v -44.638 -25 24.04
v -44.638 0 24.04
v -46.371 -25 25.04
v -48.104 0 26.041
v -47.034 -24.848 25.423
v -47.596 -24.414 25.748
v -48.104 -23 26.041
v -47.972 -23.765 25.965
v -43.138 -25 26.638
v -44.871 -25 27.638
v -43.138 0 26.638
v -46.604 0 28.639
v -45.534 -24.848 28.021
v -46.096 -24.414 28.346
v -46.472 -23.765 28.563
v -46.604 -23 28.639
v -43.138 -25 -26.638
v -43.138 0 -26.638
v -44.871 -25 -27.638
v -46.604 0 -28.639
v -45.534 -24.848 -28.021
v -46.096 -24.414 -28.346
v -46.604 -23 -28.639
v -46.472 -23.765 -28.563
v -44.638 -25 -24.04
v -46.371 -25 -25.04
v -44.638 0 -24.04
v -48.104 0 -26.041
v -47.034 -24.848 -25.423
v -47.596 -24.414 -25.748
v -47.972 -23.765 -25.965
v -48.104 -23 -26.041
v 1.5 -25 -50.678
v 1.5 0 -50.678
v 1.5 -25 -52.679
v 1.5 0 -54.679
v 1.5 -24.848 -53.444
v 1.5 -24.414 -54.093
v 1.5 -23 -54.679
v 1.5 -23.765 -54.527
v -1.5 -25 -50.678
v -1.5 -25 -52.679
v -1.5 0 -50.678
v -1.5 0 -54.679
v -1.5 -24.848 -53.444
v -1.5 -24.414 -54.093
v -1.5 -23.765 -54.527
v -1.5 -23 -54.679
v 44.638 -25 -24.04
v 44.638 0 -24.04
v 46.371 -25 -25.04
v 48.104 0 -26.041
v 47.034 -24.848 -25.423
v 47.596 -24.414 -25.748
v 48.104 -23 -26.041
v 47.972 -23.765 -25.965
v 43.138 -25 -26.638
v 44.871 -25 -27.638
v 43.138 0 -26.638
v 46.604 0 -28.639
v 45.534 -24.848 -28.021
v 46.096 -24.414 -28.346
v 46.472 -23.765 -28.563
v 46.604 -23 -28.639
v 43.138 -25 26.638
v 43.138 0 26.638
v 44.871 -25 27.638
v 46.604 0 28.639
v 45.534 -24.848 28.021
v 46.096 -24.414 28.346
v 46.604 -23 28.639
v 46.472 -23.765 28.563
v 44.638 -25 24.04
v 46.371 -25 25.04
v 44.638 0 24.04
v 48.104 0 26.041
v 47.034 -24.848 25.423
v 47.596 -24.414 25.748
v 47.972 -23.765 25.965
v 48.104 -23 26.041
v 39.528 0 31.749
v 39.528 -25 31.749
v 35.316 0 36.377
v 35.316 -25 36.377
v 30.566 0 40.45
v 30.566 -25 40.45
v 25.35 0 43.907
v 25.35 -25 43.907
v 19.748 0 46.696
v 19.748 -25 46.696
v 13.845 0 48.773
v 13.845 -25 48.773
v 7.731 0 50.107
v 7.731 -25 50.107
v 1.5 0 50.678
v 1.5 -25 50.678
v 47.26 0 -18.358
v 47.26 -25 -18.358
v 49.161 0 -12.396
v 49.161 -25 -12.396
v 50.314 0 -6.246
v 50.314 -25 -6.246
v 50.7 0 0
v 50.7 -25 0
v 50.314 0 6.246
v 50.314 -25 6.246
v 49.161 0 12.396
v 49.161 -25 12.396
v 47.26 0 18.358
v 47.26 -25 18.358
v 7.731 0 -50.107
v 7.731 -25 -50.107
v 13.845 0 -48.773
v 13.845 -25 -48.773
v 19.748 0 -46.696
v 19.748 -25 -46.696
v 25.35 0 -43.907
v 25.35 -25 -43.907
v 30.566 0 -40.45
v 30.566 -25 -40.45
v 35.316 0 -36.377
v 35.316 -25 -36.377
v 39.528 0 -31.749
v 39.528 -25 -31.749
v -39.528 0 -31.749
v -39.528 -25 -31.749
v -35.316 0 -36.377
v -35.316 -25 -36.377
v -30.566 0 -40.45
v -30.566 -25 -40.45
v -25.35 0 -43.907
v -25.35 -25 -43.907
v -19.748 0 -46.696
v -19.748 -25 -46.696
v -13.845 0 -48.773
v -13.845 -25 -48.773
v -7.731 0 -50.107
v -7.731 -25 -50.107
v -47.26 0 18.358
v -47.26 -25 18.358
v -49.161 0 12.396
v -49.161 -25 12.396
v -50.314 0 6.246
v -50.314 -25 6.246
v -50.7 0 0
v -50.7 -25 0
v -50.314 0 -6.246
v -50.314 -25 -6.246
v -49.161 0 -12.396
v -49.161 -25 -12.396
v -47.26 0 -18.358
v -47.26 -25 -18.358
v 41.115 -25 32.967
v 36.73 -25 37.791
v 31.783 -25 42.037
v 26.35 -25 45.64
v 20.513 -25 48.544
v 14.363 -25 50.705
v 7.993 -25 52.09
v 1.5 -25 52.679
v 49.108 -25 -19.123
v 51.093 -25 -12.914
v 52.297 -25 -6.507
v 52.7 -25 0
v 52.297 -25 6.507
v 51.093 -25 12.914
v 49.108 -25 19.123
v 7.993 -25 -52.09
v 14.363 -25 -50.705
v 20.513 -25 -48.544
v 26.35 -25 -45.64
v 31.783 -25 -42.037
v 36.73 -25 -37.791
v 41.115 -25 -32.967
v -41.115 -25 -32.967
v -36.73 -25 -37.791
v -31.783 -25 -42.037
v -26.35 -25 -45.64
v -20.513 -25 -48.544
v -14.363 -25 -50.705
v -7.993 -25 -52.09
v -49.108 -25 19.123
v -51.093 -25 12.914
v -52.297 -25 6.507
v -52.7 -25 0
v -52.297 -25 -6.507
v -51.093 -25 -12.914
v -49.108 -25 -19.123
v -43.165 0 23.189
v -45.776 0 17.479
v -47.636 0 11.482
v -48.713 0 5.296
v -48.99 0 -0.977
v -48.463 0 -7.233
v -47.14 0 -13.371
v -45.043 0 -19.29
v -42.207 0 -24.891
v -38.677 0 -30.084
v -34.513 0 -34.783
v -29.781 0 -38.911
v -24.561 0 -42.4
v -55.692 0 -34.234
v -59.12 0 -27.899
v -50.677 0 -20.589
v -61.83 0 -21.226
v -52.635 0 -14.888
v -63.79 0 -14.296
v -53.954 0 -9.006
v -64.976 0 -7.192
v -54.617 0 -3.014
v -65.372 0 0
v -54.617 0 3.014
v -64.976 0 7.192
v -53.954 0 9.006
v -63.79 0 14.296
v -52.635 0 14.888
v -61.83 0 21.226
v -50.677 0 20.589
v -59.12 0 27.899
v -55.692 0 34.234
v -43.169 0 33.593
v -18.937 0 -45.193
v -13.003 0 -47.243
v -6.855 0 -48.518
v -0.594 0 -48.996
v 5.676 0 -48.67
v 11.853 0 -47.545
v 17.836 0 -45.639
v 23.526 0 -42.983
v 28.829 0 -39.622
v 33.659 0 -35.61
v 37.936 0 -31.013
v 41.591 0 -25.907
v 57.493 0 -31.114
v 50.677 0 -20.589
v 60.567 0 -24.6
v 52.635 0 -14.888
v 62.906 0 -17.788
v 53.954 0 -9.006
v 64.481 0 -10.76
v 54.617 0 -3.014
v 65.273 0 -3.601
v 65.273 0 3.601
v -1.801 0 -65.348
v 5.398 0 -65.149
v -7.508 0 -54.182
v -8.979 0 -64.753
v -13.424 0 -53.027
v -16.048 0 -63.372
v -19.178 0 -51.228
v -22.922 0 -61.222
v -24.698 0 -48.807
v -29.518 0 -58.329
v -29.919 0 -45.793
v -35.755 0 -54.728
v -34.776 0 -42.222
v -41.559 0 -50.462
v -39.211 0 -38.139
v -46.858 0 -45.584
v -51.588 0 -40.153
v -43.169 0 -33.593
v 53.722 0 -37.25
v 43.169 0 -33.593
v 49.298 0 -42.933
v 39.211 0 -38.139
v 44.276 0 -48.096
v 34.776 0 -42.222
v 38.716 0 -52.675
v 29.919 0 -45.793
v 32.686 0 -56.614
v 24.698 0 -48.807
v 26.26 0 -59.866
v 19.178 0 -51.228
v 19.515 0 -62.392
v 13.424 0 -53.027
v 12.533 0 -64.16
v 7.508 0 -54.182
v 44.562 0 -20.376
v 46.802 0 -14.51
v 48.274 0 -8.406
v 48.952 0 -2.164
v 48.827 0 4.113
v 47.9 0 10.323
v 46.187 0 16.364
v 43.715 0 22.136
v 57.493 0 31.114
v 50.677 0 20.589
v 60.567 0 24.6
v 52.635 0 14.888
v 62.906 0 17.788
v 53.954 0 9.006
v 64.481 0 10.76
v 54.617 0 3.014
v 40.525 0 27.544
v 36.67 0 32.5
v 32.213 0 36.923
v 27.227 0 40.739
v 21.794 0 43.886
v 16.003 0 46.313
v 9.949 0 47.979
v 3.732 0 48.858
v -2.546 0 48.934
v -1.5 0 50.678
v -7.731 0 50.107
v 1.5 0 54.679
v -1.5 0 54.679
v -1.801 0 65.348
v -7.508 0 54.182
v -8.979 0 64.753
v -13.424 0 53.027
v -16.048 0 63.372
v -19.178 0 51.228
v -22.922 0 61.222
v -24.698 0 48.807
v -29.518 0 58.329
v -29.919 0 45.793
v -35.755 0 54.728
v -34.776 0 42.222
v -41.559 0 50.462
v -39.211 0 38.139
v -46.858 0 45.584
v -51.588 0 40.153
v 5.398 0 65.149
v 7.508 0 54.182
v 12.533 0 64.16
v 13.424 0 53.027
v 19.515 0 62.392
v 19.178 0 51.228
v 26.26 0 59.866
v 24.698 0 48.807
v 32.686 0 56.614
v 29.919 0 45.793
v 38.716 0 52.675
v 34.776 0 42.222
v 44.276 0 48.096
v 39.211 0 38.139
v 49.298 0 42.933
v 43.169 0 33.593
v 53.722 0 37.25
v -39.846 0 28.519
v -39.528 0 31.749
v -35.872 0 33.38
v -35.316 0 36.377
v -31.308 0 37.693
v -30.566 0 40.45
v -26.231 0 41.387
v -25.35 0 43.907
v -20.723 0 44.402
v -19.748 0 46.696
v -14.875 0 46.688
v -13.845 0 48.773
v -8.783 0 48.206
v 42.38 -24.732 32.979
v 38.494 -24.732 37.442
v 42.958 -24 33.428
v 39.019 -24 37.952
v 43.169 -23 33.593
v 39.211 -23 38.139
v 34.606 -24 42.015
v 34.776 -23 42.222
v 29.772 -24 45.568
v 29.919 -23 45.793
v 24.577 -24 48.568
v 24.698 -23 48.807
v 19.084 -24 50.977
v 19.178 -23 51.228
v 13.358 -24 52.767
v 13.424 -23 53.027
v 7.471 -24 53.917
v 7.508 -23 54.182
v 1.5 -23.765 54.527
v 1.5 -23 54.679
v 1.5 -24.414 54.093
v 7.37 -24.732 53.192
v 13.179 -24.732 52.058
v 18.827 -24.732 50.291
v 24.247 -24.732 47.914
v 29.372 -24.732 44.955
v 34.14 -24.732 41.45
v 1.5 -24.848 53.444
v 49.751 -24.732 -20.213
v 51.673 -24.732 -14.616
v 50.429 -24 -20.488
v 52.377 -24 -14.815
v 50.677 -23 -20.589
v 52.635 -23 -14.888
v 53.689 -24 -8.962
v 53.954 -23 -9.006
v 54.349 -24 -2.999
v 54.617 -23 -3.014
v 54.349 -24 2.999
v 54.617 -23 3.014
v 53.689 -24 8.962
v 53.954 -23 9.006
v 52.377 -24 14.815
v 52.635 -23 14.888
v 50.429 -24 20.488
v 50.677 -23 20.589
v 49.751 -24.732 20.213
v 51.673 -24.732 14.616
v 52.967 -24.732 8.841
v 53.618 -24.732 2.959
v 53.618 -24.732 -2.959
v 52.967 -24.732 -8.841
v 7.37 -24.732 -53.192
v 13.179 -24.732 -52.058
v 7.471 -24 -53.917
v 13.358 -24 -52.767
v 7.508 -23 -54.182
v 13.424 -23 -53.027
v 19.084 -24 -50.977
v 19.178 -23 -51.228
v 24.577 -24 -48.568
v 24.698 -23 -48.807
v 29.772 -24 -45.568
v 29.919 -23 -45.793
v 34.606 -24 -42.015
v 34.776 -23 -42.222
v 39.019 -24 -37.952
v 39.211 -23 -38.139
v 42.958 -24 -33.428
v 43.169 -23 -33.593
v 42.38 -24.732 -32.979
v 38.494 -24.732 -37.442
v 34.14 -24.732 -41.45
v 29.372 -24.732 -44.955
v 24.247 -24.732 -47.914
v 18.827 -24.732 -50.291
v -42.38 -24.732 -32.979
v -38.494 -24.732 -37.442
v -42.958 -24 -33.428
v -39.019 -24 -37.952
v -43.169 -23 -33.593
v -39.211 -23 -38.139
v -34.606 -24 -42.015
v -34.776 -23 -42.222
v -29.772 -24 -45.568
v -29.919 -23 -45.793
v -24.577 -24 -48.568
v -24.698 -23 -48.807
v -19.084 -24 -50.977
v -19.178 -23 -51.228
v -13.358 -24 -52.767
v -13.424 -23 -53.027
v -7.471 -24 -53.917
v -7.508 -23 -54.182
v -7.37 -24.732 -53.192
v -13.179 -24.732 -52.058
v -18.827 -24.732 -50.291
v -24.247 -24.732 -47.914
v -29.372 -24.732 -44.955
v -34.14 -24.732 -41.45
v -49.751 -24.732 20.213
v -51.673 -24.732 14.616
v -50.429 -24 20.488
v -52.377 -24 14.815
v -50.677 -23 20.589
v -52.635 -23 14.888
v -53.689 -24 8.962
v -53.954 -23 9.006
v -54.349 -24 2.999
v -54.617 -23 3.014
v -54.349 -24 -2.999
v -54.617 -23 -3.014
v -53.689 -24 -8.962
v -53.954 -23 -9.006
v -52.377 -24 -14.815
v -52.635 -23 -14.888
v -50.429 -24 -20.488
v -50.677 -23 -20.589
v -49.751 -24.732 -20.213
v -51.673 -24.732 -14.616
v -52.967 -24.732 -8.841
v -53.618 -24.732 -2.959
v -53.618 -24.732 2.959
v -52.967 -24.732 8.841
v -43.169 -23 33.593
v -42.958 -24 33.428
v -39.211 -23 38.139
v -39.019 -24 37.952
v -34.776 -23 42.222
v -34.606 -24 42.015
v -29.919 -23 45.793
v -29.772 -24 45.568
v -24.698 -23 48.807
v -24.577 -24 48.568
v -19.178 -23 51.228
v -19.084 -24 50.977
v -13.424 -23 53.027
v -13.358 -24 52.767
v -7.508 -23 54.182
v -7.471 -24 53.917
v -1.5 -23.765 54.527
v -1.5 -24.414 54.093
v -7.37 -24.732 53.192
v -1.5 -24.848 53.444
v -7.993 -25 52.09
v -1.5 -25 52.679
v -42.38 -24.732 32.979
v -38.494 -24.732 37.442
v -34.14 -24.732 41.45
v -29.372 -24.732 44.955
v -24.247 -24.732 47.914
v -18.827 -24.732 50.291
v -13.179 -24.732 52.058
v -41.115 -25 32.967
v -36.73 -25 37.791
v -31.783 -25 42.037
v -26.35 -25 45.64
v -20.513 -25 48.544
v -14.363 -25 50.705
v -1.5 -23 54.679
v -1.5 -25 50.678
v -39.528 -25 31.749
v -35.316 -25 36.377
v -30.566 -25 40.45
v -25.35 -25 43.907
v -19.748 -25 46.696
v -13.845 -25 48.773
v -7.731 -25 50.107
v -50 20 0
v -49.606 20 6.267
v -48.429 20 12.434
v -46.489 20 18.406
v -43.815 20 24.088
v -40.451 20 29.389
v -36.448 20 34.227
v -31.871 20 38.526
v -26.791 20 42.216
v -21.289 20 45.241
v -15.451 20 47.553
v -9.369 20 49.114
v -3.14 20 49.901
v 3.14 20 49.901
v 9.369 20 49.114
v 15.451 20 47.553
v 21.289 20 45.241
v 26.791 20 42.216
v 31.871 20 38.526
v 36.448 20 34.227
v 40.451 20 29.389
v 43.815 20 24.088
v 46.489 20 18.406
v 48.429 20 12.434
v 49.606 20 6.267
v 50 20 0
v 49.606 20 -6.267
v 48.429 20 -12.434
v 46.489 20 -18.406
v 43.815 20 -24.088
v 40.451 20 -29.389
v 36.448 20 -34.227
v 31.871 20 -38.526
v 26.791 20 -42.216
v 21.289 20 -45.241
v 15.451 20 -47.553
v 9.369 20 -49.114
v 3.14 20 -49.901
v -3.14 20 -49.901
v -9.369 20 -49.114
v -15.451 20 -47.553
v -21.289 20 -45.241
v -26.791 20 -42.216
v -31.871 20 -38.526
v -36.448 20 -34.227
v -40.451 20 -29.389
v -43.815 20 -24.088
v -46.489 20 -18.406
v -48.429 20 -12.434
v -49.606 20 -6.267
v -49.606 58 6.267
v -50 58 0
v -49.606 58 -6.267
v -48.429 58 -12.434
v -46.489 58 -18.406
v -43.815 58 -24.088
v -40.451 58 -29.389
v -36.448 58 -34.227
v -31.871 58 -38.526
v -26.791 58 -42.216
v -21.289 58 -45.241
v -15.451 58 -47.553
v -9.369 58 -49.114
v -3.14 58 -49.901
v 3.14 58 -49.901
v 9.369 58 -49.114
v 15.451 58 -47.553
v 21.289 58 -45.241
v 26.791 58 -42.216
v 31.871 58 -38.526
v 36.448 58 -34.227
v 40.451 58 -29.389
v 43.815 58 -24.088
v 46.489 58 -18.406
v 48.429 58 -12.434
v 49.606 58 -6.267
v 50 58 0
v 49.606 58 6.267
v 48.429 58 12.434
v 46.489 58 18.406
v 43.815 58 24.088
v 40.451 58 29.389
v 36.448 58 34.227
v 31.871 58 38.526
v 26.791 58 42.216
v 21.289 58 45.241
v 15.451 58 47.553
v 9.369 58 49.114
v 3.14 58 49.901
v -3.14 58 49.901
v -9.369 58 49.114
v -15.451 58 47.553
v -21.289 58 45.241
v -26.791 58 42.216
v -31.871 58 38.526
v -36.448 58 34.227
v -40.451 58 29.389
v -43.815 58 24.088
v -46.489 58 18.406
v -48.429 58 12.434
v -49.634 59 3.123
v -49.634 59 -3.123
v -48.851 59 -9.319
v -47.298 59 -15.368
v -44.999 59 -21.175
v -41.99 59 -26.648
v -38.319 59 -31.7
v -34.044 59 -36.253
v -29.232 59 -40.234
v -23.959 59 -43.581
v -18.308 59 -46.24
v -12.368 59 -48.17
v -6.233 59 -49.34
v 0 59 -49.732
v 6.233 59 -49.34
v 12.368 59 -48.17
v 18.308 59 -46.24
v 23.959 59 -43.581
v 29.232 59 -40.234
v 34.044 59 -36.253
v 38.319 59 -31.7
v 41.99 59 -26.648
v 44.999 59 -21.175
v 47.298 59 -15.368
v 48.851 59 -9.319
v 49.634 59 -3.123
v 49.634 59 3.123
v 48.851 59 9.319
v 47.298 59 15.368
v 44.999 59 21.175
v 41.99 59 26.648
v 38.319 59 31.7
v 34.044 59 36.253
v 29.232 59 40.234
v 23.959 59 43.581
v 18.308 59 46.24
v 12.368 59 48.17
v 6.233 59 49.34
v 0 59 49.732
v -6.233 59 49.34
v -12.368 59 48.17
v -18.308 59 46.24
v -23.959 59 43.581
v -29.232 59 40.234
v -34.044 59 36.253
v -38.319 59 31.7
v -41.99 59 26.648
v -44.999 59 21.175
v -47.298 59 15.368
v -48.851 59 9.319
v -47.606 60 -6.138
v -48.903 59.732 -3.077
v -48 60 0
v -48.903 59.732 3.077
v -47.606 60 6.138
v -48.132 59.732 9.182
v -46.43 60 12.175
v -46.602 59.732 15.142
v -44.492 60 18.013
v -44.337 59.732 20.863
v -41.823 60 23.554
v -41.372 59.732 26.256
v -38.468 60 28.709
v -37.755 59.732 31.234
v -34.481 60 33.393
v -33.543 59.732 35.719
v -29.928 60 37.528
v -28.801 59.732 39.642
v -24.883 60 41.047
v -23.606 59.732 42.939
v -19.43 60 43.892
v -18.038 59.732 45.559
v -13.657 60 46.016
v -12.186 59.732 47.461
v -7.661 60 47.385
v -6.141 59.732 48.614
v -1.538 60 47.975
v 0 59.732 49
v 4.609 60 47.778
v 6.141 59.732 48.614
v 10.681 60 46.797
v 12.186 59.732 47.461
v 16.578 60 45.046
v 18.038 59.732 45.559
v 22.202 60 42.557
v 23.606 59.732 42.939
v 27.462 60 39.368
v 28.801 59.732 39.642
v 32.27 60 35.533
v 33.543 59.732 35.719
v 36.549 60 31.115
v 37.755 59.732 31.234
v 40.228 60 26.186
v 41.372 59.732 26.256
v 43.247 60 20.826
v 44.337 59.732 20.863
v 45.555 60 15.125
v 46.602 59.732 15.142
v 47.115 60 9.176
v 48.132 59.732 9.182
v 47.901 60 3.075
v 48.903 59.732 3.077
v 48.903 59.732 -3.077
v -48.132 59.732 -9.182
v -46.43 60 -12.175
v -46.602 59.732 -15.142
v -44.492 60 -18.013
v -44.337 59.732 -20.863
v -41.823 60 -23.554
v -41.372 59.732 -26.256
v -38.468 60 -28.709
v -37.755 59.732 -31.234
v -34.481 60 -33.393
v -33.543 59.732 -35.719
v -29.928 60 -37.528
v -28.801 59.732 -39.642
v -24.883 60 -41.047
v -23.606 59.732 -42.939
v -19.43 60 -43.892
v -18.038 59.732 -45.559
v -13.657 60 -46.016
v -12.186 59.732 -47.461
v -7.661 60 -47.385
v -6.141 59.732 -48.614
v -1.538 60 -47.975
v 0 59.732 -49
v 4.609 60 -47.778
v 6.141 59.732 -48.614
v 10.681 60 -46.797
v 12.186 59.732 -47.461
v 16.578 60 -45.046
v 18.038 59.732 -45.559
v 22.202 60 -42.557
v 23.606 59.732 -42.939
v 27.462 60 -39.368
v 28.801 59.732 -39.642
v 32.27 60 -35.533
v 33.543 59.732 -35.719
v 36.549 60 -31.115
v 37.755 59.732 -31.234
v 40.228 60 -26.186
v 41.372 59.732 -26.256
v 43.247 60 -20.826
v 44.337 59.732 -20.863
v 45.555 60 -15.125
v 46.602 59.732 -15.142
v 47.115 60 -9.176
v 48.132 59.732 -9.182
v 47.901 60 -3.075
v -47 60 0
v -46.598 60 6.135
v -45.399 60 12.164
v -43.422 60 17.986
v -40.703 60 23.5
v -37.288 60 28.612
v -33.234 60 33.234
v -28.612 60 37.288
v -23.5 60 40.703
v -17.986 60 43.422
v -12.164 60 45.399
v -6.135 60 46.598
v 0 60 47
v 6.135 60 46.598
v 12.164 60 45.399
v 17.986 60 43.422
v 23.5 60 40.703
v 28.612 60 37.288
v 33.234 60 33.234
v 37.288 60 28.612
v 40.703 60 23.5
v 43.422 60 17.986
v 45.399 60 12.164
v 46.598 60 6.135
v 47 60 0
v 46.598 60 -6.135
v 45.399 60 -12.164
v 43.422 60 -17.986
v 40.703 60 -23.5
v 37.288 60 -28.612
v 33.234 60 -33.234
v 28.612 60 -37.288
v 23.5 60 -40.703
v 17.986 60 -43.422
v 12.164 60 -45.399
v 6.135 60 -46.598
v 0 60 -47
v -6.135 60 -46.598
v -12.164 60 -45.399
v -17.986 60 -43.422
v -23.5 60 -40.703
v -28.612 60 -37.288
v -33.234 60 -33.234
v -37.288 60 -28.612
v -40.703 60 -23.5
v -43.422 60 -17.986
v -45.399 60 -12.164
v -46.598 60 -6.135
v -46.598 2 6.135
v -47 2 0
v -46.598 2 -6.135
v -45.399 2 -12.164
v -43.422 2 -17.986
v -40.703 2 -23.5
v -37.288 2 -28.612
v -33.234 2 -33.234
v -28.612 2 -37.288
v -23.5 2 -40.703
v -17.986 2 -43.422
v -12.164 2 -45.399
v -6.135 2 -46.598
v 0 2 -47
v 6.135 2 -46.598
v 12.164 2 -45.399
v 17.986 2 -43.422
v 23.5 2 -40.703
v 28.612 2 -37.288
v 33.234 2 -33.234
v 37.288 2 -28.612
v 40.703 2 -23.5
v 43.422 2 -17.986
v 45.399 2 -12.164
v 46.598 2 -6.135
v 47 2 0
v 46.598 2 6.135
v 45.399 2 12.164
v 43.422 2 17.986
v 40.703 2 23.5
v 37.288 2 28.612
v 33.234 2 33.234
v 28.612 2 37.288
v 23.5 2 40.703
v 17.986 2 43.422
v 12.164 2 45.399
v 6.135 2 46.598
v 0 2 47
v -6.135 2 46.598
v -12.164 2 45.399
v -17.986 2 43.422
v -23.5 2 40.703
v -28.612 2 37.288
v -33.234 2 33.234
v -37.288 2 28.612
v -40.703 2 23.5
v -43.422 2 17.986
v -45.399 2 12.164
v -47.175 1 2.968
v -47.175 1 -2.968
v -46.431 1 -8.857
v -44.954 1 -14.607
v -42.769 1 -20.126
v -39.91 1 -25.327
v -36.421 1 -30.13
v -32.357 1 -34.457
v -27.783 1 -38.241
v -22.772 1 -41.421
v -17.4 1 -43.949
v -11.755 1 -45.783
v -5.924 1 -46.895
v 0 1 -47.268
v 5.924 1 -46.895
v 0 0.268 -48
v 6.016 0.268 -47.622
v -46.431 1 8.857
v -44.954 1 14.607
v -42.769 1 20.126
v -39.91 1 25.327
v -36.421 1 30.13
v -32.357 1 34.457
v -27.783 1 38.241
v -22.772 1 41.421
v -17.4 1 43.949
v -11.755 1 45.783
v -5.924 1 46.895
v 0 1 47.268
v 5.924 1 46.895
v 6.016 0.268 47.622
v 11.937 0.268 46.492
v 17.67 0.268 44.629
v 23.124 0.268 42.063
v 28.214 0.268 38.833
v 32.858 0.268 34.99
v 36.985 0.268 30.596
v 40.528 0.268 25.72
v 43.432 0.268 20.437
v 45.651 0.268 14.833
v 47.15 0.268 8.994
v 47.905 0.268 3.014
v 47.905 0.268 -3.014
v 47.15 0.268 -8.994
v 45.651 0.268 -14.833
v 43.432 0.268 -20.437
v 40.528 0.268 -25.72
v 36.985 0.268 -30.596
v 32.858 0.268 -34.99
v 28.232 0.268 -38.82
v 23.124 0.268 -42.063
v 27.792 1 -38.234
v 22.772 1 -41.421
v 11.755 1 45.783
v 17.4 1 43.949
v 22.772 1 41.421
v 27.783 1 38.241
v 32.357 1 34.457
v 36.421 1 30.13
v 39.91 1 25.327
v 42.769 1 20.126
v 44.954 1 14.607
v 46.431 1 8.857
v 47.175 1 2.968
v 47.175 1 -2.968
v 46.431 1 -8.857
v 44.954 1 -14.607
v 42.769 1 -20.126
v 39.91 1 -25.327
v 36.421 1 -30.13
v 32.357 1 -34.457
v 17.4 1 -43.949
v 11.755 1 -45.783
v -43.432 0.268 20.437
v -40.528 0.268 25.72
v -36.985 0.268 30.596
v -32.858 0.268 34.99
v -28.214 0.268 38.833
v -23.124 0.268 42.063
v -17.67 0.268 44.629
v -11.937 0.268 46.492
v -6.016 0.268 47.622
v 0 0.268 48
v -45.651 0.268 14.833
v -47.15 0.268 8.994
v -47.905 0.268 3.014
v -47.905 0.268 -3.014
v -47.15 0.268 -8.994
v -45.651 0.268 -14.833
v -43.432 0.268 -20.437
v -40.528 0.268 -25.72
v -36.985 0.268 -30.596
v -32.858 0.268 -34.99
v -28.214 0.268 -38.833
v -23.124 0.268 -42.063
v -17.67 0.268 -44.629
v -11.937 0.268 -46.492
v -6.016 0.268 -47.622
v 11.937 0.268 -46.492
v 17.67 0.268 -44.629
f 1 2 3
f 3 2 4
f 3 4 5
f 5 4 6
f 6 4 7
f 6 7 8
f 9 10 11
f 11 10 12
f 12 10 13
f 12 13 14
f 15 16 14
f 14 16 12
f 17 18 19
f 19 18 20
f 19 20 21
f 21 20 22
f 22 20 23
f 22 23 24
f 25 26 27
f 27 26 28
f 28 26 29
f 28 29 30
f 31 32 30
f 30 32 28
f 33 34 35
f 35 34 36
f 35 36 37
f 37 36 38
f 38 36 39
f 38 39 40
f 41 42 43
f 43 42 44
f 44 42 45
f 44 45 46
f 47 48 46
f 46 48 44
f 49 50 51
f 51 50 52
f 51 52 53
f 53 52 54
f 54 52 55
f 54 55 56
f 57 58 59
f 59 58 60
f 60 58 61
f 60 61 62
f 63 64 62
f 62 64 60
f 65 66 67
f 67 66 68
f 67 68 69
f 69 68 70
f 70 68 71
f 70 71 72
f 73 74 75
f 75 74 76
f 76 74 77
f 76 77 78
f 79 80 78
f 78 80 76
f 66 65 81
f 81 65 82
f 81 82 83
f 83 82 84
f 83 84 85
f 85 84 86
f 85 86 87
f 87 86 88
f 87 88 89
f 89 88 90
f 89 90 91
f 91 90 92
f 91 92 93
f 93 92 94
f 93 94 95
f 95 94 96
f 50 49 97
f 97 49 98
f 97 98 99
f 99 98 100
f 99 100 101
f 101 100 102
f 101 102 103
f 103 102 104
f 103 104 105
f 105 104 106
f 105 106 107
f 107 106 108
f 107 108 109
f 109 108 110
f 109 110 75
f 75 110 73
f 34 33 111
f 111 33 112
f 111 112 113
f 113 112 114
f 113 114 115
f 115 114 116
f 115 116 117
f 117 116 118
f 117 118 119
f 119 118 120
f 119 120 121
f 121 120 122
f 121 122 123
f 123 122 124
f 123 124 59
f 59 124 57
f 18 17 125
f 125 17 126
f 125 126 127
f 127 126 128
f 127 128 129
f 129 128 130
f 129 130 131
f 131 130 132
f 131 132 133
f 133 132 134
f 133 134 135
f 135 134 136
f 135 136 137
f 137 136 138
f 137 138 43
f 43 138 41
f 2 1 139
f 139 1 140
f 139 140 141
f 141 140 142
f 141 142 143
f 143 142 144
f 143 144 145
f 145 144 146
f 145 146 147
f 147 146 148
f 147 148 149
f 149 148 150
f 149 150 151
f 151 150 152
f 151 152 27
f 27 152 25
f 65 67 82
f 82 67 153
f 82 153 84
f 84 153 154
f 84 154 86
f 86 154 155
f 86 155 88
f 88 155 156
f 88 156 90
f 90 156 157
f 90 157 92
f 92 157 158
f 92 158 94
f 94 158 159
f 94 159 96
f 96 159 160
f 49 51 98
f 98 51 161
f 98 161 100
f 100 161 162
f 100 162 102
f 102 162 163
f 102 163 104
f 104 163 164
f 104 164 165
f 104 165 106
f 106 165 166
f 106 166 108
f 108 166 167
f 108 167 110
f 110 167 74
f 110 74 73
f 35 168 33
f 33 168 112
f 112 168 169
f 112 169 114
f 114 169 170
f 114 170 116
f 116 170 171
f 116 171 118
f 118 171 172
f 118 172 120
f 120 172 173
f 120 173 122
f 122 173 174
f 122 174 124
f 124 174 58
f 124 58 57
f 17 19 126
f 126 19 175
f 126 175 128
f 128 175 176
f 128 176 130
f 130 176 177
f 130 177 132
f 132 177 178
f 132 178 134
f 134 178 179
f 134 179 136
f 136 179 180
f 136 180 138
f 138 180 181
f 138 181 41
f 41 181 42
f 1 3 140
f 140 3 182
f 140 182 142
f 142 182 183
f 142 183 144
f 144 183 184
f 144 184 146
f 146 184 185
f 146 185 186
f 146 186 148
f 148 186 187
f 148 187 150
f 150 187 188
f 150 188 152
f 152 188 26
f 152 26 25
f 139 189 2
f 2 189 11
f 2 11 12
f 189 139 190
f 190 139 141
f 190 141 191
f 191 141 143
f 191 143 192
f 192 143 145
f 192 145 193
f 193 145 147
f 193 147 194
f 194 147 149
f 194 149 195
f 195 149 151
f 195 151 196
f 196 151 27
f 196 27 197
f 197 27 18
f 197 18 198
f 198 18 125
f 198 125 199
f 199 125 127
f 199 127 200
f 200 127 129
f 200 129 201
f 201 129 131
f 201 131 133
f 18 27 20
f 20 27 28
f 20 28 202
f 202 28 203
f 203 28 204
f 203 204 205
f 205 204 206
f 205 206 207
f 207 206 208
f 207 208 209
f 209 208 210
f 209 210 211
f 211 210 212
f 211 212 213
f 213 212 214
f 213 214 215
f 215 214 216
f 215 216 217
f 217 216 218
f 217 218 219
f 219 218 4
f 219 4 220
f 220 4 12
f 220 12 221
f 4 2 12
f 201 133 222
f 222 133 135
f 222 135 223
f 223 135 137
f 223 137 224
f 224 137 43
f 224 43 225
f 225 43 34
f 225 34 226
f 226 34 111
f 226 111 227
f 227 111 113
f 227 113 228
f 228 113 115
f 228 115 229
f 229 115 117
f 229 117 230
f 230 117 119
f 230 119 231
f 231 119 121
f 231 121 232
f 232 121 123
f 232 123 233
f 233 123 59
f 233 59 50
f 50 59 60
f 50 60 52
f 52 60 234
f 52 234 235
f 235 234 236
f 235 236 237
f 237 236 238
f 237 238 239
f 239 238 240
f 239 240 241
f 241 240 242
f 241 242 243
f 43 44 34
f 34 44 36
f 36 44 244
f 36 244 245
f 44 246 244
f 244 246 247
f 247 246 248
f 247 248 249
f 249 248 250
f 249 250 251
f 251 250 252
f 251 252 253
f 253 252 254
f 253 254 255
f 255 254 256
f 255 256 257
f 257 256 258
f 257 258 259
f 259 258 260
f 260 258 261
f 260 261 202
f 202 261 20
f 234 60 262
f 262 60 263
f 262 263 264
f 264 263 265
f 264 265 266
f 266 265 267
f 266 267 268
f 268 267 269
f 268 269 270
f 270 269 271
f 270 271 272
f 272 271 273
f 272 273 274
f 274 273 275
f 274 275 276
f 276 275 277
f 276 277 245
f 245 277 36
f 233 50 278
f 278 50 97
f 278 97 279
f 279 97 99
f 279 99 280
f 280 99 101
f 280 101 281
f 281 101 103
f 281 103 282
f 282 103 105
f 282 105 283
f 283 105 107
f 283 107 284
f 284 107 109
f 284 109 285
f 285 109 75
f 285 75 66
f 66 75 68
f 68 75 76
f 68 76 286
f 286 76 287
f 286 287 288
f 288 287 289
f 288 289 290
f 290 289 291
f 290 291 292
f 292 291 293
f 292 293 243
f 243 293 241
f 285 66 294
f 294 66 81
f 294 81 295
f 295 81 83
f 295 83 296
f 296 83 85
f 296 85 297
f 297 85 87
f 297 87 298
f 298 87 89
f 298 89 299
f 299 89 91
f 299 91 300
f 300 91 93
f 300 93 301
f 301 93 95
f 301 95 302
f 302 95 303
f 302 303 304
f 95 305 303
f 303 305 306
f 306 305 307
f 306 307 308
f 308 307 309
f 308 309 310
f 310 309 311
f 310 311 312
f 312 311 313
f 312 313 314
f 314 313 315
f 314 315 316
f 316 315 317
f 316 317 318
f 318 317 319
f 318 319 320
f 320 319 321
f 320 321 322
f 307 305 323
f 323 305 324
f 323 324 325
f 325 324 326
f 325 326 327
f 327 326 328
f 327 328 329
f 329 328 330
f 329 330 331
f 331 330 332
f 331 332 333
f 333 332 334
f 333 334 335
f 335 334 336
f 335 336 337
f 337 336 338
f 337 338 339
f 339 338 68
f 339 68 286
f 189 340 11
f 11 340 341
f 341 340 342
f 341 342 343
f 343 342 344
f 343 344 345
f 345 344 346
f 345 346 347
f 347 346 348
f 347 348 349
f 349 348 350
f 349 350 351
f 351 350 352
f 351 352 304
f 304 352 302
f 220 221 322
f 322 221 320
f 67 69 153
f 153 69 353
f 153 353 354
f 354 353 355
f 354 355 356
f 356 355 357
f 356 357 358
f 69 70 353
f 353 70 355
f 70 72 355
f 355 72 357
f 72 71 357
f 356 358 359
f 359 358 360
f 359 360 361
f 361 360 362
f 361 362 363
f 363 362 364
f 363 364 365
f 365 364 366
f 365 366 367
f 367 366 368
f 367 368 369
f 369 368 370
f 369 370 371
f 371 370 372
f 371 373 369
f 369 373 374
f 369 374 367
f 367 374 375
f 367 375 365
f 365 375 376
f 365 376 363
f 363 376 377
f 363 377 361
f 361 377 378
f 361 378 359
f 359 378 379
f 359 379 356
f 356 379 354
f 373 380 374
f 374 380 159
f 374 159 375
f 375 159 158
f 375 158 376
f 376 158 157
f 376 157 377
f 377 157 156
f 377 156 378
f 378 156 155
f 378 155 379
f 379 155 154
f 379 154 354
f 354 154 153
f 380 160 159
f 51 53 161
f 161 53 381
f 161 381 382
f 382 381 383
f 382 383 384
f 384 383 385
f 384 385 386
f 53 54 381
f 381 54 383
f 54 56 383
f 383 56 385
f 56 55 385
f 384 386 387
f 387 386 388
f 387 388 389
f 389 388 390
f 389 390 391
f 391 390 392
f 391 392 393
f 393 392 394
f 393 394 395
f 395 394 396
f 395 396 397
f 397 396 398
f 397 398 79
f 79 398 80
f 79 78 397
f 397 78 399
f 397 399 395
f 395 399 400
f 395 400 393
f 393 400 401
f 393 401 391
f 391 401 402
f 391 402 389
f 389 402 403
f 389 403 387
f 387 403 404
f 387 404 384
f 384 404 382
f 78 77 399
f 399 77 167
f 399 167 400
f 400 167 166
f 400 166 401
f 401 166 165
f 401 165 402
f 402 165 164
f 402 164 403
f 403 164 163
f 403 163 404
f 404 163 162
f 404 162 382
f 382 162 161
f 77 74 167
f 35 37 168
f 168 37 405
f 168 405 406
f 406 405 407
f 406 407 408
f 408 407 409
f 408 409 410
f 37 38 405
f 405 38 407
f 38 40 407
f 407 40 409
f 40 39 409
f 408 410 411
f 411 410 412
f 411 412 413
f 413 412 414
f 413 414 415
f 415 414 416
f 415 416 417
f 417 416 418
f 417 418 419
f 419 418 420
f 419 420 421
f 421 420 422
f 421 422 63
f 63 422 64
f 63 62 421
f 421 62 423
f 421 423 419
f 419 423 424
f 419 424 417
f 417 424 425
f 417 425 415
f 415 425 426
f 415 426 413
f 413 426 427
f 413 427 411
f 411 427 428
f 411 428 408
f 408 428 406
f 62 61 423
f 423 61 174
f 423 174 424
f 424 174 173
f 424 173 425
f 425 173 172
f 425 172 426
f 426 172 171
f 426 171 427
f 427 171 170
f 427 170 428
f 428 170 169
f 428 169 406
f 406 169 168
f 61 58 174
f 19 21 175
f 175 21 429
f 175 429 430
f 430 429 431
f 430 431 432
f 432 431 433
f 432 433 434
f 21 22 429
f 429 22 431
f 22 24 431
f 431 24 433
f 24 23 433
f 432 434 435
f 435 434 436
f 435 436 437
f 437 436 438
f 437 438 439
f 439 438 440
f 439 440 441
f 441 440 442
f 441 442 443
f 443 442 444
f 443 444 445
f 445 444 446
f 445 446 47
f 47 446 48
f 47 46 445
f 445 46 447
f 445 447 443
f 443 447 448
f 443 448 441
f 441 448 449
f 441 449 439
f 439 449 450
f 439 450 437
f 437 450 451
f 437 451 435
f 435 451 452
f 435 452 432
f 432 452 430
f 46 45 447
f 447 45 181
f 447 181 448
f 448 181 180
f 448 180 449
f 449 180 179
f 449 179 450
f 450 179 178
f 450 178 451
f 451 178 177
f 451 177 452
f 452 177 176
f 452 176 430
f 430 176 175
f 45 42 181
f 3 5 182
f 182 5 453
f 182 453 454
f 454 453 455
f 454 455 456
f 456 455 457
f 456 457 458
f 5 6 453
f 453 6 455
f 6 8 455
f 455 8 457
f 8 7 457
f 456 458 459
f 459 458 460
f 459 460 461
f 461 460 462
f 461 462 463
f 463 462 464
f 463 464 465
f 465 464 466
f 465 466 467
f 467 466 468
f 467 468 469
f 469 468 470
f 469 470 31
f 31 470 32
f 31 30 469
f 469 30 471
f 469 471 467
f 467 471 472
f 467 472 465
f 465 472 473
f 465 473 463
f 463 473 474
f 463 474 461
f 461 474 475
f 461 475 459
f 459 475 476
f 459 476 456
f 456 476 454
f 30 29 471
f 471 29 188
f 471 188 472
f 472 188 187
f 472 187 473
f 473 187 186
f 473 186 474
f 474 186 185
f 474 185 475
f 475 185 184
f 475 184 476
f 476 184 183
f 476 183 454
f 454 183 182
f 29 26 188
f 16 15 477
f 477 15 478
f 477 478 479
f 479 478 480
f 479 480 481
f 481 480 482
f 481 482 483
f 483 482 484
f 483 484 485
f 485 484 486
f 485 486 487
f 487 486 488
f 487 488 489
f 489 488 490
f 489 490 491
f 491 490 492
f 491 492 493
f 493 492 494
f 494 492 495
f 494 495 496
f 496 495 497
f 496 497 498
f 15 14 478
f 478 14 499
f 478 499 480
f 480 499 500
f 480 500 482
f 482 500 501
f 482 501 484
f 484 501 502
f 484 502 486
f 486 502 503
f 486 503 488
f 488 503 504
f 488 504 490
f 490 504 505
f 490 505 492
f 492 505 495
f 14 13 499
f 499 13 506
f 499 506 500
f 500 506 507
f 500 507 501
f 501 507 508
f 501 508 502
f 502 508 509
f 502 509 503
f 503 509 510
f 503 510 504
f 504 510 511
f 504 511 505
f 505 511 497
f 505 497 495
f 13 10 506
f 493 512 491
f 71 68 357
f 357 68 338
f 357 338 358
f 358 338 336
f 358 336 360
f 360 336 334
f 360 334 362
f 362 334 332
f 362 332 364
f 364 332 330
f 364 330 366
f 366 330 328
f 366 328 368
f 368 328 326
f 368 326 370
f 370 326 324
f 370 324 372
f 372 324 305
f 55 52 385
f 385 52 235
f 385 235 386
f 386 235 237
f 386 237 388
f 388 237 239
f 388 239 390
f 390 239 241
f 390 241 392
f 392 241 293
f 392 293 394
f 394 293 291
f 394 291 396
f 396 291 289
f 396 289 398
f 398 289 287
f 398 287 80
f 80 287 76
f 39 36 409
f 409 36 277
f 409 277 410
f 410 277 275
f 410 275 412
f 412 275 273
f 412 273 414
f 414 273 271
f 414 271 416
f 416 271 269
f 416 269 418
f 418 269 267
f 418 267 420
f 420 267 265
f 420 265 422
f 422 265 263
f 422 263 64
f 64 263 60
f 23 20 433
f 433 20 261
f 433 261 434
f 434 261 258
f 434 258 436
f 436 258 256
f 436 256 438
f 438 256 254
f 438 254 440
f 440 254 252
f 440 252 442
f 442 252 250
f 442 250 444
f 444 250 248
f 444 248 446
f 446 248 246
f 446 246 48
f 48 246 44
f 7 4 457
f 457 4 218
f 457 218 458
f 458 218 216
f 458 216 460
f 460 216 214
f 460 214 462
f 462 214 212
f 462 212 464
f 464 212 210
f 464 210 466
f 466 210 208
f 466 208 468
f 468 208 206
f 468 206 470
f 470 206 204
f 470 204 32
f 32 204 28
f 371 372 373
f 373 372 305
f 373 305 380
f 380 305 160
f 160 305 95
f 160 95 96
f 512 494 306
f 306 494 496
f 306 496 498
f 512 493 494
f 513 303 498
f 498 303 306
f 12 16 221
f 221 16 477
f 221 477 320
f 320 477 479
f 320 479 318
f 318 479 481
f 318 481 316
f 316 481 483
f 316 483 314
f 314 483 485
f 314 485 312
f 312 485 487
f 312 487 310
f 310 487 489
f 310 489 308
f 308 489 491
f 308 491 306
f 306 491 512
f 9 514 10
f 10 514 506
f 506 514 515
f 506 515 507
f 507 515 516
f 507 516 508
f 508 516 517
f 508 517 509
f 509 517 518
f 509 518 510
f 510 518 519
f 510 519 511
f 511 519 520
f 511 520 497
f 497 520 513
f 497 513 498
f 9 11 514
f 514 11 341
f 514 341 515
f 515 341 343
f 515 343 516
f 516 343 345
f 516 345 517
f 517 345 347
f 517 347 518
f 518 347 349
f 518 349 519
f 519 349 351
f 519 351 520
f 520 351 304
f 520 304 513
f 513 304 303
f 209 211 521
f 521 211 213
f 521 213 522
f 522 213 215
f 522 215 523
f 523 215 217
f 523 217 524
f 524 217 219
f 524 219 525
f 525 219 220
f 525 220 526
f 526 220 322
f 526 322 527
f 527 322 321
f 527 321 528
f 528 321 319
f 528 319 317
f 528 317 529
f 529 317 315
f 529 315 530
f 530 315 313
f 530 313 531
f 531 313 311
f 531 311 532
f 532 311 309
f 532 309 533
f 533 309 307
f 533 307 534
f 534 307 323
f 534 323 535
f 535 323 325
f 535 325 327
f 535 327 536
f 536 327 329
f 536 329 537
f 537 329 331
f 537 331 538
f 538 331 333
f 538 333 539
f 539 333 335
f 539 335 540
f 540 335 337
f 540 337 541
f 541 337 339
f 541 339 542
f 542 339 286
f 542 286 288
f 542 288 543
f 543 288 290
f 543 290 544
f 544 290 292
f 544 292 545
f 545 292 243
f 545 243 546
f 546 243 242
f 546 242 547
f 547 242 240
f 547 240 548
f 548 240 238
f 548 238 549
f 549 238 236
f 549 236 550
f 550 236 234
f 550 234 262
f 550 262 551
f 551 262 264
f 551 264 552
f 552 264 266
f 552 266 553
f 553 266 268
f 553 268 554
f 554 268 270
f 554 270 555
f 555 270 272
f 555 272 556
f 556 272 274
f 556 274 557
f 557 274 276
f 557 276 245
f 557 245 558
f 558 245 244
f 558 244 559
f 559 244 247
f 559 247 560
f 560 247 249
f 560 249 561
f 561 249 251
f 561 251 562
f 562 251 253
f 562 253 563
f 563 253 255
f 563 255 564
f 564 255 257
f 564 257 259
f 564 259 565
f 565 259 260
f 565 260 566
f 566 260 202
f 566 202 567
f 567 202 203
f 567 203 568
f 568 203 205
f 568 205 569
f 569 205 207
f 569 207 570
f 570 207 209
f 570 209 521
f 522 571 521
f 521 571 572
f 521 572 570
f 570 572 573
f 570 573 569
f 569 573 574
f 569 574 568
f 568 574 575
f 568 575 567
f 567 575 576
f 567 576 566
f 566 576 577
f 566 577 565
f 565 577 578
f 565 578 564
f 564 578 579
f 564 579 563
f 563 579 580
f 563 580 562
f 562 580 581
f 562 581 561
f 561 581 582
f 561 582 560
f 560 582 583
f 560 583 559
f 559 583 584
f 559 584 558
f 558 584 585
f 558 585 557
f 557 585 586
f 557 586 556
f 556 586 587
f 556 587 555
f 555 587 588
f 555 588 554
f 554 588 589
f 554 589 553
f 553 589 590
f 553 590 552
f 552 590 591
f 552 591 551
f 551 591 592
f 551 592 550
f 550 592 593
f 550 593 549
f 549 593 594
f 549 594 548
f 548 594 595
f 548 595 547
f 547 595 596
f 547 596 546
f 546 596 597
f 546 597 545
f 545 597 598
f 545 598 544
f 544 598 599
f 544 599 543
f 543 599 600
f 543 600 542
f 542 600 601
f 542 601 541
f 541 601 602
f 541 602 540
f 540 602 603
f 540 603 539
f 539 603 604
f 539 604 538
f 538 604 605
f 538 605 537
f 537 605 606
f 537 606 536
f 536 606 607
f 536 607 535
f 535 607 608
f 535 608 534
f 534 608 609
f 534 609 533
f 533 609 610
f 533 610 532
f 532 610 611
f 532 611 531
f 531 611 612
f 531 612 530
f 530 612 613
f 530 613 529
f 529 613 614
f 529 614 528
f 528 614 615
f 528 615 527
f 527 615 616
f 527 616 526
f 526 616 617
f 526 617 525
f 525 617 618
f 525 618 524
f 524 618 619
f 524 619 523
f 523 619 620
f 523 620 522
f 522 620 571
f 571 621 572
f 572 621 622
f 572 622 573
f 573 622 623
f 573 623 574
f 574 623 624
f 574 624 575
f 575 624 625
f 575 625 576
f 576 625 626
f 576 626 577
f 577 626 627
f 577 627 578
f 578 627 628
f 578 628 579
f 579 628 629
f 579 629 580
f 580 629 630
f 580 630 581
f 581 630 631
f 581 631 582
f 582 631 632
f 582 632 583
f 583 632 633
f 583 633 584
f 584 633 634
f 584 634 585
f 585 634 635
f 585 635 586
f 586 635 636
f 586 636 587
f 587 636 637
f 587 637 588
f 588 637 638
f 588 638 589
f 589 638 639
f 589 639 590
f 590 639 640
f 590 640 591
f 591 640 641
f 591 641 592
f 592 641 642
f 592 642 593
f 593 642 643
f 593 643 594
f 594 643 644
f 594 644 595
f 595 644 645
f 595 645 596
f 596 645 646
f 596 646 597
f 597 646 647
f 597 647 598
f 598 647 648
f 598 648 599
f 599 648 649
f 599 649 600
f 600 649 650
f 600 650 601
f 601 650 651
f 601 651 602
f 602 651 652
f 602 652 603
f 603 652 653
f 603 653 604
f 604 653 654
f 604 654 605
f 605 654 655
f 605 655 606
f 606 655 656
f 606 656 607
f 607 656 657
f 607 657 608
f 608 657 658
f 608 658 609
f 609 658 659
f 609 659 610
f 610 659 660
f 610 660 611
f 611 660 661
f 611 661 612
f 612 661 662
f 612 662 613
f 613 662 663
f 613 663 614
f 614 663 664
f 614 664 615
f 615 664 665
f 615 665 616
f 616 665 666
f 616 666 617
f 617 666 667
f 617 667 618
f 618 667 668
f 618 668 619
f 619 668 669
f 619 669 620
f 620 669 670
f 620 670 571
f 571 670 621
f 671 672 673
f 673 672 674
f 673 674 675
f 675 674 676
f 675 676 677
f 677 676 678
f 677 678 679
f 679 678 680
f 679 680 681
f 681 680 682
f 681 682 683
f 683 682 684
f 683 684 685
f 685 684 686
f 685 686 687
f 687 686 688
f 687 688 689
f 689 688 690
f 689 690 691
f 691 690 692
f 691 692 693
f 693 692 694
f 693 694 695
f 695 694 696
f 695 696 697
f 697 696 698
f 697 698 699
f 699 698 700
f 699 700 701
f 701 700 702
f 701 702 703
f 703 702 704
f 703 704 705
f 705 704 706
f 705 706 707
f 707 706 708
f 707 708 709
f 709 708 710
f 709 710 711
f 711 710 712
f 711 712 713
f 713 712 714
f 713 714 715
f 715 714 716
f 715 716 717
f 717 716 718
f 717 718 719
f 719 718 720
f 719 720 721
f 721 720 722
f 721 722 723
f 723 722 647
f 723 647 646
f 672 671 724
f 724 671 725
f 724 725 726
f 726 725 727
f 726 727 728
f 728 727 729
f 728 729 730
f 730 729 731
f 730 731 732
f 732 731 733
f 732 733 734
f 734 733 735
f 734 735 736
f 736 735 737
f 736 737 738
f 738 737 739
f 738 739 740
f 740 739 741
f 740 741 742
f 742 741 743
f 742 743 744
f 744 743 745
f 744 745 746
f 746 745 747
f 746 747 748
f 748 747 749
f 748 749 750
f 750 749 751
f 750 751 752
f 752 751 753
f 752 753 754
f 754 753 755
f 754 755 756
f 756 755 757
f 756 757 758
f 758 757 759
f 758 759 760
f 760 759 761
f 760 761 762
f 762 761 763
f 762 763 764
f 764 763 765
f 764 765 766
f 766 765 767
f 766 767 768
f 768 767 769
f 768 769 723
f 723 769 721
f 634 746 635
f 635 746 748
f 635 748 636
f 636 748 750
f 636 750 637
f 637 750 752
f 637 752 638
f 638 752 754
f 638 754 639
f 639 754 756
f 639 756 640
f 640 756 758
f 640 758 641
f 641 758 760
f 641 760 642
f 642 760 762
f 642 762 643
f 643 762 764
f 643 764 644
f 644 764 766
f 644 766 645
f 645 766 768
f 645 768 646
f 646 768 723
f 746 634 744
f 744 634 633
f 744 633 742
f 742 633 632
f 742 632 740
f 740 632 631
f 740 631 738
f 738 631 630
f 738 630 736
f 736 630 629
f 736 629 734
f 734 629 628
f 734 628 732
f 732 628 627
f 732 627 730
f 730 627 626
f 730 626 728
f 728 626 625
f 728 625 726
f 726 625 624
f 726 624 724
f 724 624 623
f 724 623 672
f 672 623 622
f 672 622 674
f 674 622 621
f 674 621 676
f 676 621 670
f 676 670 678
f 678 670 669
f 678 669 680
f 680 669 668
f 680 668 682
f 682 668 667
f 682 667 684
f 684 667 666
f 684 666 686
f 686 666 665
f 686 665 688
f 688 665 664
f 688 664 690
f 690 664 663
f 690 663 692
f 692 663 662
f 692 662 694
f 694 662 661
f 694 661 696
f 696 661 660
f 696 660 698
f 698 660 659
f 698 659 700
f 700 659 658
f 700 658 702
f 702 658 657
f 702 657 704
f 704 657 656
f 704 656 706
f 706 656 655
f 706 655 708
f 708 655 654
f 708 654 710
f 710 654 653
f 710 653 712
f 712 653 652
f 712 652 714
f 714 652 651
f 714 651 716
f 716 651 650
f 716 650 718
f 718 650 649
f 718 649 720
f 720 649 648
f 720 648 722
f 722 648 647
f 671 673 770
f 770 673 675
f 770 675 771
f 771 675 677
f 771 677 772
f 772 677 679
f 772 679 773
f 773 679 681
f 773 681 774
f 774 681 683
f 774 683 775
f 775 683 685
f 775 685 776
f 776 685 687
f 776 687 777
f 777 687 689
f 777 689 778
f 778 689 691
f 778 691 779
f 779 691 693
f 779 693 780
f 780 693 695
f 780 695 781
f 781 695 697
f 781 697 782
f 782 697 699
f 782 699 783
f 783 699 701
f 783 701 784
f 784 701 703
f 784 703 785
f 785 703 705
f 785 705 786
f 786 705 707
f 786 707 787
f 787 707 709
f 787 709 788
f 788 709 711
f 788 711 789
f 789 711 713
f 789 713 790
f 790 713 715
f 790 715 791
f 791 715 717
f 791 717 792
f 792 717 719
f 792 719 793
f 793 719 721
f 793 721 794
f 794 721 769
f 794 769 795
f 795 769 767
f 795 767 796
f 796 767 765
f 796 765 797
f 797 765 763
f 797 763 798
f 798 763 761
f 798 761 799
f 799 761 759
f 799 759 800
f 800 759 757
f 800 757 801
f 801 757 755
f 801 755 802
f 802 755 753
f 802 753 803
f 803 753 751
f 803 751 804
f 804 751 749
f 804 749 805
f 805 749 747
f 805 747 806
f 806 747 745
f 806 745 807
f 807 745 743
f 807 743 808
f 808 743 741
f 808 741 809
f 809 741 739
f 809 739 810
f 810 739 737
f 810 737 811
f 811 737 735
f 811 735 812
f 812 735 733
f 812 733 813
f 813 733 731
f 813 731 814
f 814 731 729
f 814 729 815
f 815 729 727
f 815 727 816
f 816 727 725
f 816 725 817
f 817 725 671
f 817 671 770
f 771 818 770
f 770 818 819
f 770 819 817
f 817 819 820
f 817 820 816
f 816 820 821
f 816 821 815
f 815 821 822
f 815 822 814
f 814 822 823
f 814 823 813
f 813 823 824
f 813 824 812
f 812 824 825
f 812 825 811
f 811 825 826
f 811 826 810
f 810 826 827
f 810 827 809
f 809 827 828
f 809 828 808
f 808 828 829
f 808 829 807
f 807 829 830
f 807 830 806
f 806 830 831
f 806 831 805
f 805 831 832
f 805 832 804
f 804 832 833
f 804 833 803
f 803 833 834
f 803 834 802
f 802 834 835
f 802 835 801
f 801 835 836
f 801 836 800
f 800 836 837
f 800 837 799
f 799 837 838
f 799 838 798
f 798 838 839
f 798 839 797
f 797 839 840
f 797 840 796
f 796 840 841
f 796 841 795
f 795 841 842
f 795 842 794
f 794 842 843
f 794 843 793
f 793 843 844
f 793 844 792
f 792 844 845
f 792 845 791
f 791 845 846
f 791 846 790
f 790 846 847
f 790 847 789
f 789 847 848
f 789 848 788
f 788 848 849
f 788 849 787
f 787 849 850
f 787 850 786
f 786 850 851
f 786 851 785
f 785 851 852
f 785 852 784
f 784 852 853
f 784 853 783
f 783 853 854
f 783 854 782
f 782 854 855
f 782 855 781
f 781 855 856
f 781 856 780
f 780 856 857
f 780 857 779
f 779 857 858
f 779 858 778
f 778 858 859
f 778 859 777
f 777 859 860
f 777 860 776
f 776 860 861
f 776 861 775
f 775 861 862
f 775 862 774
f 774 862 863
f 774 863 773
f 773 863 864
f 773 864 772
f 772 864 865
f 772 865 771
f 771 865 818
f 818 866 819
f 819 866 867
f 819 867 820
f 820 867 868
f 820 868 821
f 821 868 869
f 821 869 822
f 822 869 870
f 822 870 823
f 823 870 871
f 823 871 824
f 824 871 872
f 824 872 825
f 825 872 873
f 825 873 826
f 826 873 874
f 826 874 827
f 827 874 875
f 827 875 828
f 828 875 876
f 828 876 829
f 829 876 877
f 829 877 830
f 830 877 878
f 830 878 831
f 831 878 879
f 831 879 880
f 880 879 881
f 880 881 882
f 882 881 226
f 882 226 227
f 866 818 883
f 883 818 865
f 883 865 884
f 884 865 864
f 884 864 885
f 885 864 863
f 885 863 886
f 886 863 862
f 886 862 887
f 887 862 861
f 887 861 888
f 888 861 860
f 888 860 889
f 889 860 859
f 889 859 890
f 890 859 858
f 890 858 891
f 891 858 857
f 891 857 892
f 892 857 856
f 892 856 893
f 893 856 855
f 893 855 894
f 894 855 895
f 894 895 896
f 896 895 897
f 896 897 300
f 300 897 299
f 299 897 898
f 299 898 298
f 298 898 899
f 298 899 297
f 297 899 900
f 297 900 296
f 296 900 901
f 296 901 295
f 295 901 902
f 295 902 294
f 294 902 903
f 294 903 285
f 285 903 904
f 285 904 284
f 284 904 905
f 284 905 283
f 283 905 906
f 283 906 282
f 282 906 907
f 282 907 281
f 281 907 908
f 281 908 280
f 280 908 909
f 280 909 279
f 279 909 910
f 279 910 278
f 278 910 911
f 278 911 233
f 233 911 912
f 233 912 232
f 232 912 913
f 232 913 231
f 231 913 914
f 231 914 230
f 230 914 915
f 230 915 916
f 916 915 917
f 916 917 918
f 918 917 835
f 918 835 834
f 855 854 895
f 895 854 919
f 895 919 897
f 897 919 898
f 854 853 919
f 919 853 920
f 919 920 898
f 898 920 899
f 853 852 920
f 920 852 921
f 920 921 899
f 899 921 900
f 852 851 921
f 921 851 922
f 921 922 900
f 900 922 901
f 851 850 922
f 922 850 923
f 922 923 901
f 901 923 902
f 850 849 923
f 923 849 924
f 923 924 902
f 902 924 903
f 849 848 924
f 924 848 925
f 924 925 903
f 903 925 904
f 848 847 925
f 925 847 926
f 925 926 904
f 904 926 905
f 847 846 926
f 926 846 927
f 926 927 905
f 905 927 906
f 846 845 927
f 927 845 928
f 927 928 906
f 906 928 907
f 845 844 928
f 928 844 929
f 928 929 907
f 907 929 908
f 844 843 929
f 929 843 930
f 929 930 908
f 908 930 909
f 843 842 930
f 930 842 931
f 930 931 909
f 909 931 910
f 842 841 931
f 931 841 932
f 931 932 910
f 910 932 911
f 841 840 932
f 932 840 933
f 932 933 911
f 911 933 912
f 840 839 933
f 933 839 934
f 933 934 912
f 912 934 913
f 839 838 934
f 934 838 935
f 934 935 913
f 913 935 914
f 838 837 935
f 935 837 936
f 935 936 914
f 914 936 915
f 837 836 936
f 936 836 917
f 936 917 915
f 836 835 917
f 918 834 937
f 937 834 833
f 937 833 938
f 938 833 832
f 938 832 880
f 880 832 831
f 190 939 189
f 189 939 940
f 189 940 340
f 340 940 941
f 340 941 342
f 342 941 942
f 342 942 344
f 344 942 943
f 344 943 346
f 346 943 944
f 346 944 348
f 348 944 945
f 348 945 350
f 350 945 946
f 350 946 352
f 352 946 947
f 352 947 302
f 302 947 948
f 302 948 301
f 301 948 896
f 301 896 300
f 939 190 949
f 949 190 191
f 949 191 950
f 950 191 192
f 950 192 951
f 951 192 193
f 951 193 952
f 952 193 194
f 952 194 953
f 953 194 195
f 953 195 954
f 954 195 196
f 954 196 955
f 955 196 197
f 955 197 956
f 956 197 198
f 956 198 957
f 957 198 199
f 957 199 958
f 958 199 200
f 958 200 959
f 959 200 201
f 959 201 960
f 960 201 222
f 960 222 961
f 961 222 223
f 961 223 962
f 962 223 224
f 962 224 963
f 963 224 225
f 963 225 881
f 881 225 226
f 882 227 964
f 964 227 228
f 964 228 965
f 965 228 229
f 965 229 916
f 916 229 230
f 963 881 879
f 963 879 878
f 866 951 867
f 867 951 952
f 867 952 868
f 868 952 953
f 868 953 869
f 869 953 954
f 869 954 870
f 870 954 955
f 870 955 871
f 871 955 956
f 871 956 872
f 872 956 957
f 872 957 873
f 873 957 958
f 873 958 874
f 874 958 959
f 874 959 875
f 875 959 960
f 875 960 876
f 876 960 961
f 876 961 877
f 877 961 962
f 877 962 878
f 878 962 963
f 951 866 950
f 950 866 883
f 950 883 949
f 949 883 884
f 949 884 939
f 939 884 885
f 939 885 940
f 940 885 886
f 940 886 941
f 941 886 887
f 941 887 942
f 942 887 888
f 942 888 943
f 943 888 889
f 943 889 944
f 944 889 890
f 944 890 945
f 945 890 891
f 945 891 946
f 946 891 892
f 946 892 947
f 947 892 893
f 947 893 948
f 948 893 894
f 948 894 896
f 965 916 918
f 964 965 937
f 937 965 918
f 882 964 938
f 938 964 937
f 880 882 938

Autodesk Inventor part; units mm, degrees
ref_plane "YZ Plane" through (0, 0, 0) normal (1, 0, 0) x (0, 1, 0)
ref_plane "XZ Plane" through (0, 0, 0) normal (0, 1, 0) x (-1, 0, 0)
ref_plane "XY Plane" through (0, 0, 0) normal (0, 0, 1) x (1, 0, 0)
sketch "Sketch1" plane through (0, 0, 0) normal (0, 0, 1) x (1, 0, 0)
  line L0 (-54.7, 0) -> (-49, 0)
  line L1 (-50.7, -25) -> (-52.7, -25)
  line L2 (-54.7, -23) -> (-54.7, 0)
  line L3 (-47, 20) -> (-50, 20)
  line L4 (-50, 20) -> (-50, 58)
  line L5 (-48, 60) -> (-47, 60)
  line L6 (-47, 60) -> (-47, 20)
  line L7 (-54.7, 0) -> (-65.3724, 0)
  line L8 (-65.3724, 0) -> (-50, 20)
  line L9 (-47, 20) -> (-47, 2)
  arc A0 (-48, 60) -> (-50, 58) centre (-48, 58) ccw
  arc A1 (-54.7, -23) -> (-52.7, -25) centre (-52.7, -23) ccw
  line L10 (0, -42.5799) -> (0, 77.5799) projected
  line L11 (-50.7, -25) -> (-50.7, 0)
  arc A2 (-49, 0) -> (-47, 2) centre (-49, 2) ccw
  point P0 (0, 0)
  point P1 (-47, 0)
  point P2 (-54.7, -25)
  point P3 (-50, 60)
  point P4 (-51.85, 0)
  dimension "d7" = 40
  dimension "d10" = 2
  dimension "d12" = 20
  dimension "d20" = 50
  dimension "d21" = 54.7
  dimension "d22" = 3
  dimension "d23" = 2
  dimension "d24" = 4
revolve "Revolution1" add sketch "Sketch1" angle 360 about axis through (0, -10, 0) along (0, 1, 0)
sketch "Sketch2" plane through (0, -25, 0) normal (0, -1, 0) x (1, 0, 0)
  line L0 (1.5, 45.7) -> (-1.5, 45.7)
  line L1 (-1.5, 45.7) -> (-1.5, 55.7)
  line L2 (-1.5, 55.7) -> (1.5, 55.7)
  line L3 (1.5, 55.7) -> (1.5, 45.7)
  circle A0 centre (0, 0) radius 50.7 projected
  line L4 (1.5, 45.7) -> (-1.5, 55.7) construction
  line L5 (-1.5, 45.7) -> (1.5, 55.7) construction
  point P0 (0, 50.7)
  dimension "d13" = 3
  dimension "d14" = 10
extrude "Extrusion1" cut sketch "Sketch2" against normal blind 25 contours L0 L1 A0 L3 | A0 L1 L2 L3 picked at (0.1667, 47.3658)
pattern_circular "Circular Pattern1" count 6 over 360 about axis through (0, -10, 0) along (0, 1, 0) of "Extrusion1"
properties part number "top-ventilation-tube-adapter-109.6mmID-to-100mmID"
